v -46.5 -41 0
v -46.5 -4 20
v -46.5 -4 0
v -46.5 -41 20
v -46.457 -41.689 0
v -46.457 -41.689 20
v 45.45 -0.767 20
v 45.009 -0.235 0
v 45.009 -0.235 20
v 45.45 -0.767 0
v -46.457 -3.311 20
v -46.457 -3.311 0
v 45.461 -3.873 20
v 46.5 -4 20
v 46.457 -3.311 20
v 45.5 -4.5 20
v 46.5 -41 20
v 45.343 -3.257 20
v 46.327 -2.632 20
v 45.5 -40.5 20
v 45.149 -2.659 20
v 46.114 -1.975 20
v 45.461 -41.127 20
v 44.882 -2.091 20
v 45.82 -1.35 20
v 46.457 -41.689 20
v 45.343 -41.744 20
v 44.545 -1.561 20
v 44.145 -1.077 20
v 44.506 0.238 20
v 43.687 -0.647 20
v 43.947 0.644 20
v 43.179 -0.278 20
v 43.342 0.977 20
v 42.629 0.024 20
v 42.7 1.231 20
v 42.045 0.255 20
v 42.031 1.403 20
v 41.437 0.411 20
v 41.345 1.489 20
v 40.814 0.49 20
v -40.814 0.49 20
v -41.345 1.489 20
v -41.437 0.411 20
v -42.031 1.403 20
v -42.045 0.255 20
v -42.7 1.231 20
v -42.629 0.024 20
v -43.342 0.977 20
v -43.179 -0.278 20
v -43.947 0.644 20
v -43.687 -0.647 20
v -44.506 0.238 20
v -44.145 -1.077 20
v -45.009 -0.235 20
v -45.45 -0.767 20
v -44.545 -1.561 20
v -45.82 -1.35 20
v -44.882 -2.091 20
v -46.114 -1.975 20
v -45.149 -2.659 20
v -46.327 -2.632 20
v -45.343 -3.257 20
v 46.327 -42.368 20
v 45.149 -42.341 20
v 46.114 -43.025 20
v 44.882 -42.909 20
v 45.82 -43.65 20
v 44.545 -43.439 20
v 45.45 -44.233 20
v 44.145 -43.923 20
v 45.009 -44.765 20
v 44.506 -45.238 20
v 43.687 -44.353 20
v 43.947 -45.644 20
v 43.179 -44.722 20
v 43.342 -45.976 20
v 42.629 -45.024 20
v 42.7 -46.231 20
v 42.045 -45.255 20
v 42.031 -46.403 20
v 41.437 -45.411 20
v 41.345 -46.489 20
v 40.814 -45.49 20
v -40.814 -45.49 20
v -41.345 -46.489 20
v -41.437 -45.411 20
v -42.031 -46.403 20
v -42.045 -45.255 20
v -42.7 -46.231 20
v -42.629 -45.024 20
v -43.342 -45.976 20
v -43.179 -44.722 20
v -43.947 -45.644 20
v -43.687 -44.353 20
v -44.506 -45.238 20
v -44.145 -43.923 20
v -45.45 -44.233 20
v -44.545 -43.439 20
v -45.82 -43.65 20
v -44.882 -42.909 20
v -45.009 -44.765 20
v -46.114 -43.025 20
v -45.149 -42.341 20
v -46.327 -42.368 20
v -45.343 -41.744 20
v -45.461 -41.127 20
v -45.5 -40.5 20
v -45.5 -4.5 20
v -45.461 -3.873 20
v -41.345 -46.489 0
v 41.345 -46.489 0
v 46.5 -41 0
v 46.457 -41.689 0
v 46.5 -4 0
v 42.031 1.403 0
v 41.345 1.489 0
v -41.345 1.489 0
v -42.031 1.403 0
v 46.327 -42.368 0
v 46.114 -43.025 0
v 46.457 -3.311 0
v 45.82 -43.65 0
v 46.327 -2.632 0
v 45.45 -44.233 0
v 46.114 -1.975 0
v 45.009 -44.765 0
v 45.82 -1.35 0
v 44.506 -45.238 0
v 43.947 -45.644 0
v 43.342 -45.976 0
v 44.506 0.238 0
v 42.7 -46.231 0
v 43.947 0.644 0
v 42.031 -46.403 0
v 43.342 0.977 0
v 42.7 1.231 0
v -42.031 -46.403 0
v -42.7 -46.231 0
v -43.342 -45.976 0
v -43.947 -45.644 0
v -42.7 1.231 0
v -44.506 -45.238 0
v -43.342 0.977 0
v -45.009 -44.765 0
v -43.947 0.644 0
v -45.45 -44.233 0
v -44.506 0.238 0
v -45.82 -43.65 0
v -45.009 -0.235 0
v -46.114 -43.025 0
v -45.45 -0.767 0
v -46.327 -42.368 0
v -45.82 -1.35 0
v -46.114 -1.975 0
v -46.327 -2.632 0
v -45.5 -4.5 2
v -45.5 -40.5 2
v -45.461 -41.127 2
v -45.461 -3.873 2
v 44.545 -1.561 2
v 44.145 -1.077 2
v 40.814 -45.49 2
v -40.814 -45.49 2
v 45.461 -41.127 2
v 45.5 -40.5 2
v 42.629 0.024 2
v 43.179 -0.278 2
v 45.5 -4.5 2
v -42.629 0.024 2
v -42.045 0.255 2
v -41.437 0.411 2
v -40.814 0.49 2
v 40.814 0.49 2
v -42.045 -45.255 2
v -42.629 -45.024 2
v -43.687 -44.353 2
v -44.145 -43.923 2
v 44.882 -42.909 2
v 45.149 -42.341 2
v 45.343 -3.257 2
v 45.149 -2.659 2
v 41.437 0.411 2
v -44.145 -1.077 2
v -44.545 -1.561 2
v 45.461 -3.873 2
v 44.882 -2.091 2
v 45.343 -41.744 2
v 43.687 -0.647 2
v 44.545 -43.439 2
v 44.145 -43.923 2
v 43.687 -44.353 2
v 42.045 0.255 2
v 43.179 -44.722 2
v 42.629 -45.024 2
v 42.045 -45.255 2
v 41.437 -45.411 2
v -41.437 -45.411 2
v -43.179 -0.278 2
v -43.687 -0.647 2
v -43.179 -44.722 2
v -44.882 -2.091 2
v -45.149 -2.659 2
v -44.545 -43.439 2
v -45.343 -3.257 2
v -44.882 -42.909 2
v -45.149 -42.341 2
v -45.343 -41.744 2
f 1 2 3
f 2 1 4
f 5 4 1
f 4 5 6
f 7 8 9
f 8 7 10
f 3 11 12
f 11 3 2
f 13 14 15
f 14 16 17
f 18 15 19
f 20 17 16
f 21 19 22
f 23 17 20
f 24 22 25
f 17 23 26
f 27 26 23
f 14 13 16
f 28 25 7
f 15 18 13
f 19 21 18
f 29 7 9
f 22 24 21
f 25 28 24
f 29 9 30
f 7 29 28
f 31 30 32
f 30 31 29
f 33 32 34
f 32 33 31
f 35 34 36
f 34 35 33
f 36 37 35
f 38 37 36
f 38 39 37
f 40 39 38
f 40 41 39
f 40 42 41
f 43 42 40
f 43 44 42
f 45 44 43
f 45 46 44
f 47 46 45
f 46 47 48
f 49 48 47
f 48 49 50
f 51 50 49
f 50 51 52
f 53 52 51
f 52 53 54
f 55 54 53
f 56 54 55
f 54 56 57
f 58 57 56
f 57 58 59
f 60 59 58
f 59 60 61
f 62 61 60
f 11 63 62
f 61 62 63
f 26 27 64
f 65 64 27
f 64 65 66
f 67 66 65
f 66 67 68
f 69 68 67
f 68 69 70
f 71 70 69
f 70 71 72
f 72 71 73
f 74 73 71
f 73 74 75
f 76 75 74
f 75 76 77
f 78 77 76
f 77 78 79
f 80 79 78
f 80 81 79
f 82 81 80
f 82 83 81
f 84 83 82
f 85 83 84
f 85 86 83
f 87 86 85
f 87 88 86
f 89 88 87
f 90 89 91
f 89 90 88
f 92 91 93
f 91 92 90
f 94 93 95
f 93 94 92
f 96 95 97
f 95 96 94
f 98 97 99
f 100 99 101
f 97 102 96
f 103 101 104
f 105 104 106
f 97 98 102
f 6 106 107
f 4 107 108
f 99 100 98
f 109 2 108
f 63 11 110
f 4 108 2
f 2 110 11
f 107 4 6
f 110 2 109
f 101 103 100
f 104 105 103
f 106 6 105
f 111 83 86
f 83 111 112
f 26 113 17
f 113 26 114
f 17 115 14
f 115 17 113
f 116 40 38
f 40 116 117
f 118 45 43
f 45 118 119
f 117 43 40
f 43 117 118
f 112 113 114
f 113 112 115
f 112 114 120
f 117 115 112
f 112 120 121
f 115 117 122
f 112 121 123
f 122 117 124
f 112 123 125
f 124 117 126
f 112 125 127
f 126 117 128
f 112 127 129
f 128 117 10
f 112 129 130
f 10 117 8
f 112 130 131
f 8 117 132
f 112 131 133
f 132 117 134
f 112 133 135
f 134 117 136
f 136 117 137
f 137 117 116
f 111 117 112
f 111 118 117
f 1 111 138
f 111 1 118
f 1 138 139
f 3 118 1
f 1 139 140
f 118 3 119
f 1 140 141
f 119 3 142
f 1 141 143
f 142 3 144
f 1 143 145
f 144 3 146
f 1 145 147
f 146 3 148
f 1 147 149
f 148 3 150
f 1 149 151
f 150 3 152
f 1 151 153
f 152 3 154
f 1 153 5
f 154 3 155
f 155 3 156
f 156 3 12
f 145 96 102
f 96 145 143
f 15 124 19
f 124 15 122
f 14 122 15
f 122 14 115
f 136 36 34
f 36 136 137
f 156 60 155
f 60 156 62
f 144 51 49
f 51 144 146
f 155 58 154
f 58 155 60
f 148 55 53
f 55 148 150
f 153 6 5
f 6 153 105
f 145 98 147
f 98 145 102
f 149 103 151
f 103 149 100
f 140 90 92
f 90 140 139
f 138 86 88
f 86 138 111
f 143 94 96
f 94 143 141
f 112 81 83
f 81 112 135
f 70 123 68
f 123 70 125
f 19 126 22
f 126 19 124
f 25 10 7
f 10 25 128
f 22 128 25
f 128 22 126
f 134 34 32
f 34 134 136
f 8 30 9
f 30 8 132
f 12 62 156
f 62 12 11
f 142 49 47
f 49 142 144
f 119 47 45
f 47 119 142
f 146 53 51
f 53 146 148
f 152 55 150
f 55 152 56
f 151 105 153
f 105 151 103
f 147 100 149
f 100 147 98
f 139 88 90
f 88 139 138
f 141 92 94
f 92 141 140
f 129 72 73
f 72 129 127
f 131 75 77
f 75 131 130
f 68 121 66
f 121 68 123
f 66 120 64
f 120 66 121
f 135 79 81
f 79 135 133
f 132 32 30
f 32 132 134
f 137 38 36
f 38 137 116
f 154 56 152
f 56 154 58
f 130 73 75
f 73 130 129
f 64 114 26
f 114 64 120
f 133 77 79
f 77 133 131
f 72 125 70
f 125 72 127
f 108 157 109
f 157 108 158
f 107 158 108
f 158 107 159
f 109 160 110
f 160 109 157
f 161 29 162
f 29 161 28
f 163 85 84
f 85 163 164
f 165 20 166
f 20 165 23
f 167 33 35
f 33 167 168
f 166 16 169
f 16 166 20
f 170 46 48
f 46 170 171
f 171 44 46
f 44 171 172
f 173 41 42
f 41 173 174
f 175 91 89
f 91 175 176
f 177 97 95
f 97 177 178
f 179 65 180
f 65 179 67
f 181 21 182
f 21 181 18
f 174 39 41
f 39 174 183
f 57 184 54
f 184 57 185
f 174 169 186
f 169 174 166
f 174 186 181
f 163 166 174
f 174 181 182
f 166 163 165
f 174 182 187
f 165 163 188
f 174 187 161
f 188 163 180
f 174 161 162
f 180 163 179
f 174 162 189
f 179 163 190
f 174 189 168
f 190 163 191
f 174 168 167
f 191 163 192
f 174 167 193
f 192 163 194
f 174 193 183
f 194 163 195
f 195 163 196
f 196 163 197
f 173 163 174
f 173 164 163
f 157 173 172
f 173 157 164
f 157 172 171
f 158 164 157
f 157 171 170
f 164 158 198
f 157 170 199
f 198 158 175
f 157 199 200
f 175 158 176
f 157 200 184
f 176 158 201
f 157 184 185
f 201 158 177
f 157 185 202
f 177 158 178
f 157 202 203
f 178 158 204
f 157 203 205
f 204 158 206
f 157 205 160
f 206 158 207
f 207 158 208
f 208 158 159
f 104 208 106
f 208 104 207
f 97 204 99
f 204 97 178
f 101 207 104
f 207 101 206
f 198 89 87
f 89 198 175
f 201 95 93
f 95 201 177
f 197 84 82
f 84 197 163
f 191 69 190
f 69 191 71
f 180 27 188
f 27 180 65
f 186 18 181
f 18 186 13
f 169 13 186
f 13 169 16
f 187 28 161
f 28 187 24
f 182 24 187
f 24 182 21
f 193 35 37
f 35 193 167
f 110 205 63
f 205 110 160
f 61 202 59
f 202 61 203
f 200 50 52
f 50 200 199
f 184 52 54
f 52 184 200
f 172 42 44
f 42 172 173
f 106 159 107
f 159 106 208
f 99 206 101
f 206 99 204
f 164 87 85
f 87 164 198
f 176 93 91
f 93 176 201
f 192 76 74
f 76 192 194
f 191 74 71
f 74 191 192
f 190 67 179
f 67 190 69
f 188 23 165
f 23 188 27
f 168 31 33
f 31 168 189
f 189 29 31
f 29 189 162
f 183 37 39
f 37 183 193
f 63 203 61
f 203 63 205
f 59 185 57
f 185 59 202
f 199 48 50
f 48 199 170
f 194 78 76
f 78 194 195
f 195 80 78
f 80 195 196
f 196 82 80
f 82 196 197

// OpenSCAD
$fn = 50;


difference() {
	union() {
		translate(v = [0, -22.5000000000, 0]) {
			hull() {
				translate(v = [-41.0000000000, 18.5000000000, 0]) {
					cylinder(h = 20, r = 5.5000000000);
				}
				translate(v = [41.0000000000, 18.5000000000, 0]) {
					cylinder(h = 20, r = 5.5000000000);
				}
				translate(v = [-41.0000000000, -18.5000000000, 0]) {
					cylinder(h = 20, r = 5.5000000000);
				}
				translate(v = [41.0000000000, -18.5000000000, 0]) {
					cylinder(h = 20, r = 5.5000000000);
				}
			}
		}
	}
	union() {
		translate(v = [0, -22.5000000000, 2]) {
			hull() {
				translate(v = [-40.5000000000, 18.0000000000, 0]) {
					cylinder(h = 40, r = 5);
				}
				translate(v = [40.5000000000, 18.0000000000, 0]) {
					cylinder(h = 40, r = 5);
				}
				translate(v = [-40.5000000000, -18.0000000000, 0]) {
					cylinder(h = 40, r = 5);
				}
				translate(v = [40.5000000000, -18.0000000000, 0]) {
					cylinder(h = 40, r = 5);
				}
			}
		}
	}
}
